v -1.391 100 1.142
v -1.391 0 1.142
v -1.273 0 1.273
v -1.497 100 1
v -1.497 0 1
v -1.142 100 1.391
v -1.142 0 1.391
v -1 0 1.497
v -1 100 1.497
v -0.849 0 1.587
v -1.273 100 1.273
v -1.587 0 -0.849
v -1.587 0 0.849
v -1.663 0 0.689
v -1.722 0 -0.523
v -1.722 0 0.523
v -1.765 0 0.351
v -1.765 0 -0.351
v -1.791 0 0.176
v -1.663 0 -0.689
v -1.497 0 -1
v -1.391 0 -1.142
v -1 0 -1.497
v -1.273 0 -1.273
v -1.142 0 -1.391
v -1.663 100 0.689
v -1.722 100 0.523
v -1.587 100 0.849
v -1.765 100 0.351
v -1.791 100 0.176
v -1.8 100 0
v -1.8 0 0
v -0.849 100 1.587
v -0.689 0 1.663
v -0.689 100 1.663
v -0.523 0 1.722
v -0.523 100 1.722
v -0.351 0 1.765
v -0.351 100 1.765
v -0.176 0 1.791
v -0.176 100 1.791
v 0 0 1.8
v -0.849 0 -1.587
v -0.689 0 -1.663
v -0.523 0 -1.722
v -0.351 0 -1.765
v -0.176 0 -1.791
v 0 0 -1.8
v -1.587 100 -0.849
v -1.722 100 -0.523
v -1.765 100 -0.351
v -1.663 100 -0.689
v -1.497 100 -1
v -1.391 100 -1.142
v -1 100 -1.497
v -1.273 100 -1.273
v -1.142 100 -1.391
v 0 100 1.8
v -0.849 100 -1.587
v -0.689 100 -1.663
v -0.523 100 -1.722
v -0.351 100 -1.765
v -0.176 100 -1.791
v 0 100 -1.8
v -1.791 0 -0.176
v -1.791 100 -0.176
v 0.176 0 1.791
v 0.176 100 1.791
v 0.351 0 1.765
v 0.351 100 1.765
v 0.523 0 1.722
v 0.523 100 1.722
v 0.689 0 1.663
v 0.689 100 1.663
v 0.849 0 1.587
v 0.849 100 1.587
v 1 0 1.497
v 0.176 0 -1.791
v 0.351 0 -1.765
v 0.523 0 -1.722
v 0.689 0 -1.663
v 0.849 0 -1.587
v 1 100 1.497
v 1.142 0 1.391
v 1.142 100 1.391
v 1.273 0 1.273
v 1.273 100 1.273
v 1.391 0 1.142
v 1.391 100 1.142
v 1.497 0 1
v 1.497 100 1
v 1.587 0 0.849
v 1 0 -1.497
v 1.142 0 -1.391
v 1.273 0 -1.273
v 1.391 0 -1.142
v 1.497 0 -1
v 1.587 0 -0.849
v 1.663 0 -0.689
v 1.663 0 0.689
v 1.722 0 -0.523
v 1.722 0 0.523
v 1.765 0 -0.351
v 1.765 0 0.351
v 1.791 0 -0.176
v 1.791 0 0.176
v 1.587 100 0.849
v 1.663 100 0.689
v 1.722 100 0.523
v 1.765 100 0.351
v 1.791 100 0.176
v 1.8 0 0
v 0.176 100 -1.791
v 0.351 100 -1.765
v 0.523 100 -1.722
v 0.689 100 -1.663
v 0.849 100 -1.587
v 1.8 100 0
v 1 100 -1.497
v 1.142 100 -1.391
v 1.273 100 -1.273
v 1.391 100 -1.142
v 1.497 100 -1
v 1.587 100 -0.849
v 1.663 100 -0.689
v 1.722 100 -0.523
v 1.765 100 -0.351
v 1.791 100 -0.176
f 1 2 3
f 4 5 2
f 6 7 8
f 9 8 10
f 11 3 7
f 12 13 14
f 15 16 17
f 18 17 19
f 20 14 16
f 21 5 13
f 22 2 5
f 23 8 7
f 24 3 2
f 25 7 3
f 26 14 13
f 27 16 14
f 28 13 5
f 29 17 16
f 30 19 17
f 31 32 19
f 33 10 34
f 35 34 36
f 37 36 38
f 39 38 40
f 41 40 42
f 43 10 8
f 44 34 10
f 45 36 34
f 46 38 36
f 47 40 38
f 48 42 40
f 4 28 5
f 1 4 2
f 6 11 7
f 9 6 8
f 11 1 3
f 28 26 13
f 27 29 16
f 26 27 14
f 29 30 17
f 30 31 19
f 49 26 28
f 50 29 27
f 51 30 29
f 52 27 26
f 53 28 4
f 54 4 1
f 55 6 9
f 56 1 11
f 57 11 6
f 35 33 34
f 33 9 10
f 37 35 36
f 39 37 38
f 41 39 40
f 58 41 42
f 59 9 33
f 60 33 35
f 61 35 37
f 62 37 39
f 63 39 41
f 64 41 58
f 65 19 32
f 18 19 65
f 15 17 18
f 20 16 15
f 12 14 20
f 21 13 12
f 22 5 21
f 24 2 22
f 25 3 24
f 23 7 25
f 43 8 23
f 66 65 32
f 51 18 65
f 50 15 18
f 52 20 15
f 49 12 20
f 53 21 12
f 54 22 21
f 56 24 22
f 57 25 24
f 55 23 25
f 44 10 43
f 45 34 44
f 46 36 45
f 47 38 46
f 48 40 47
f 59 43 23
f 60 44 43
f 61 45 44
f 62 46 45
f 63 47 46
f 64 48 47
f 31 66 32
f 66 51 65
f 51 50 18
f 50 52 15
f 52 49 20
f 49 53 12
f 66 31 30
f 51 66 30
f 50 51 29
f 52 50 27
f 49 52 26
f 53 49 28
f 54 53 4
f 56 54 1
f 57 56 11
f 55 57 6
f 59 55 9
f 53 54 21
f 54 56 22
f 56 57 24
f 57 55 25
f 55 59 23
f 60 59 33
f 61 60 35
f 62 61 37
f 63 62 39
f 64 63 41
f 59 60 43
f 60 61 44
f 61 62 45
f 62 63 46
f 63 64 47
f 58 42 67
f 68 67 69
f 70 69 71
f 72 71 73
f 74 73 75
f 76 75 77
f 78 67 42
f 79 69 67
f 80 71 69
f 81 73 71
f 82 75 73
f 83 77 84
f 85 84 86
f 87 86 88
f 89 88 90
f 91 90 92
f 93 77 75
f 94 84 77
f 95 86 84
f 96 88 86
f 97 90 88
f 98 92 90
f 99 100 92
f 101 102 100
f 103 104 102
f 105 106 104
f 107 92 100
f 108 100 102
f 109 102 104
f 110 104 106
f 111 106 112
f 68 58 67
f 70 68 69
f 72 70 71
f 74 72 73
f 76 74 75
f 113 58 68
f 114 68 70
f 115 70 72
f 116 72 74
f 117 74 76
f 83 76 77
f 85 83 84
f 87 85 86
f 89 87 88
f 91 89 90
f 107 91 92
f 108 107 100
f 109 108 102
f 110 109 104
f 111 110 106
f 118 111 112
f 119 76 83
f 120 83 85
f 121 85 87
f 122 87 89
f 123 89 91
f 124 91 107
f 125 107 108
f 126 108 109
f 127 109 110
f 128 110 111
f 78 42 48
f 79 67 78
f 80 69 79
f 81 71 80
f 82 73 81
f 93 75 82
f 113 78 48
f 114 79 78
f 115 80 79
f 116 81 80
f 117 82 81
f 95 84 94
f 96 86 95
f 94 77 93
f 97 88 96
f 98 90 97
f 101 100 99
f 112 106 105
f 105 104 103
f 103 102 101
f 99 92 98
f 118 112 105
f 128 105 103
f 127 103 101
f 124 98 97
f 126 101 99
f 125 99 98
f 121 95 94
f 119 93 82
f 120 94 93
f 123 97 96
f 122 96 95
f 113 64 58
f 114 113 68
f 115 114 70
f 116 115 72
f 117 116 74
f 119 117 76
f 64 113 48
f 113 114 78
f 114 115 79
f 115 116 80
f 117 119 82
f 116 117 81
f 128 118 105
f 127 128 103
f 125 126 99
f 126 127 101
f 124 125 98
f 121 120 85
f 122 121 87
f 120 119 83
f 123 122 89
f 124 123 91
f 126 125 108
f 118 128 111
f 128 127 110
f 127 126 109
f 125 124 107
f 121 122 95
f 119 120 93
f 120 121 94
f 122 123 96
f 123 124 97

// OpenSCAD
// TDPB M3 drill cleaner
// Geometry follows the holder clearance profile. Its dimensions describe the pocket used in the source design. Physical tool dimensions and fit have yet to be measured.
// Units: mm
$fn = 64;
union() {
    translate([0, 0, 0]) rotate([-90, 0, 0])
        cylinder(h=100, r1=1.8, r2=1.8, $fn=64);
}
